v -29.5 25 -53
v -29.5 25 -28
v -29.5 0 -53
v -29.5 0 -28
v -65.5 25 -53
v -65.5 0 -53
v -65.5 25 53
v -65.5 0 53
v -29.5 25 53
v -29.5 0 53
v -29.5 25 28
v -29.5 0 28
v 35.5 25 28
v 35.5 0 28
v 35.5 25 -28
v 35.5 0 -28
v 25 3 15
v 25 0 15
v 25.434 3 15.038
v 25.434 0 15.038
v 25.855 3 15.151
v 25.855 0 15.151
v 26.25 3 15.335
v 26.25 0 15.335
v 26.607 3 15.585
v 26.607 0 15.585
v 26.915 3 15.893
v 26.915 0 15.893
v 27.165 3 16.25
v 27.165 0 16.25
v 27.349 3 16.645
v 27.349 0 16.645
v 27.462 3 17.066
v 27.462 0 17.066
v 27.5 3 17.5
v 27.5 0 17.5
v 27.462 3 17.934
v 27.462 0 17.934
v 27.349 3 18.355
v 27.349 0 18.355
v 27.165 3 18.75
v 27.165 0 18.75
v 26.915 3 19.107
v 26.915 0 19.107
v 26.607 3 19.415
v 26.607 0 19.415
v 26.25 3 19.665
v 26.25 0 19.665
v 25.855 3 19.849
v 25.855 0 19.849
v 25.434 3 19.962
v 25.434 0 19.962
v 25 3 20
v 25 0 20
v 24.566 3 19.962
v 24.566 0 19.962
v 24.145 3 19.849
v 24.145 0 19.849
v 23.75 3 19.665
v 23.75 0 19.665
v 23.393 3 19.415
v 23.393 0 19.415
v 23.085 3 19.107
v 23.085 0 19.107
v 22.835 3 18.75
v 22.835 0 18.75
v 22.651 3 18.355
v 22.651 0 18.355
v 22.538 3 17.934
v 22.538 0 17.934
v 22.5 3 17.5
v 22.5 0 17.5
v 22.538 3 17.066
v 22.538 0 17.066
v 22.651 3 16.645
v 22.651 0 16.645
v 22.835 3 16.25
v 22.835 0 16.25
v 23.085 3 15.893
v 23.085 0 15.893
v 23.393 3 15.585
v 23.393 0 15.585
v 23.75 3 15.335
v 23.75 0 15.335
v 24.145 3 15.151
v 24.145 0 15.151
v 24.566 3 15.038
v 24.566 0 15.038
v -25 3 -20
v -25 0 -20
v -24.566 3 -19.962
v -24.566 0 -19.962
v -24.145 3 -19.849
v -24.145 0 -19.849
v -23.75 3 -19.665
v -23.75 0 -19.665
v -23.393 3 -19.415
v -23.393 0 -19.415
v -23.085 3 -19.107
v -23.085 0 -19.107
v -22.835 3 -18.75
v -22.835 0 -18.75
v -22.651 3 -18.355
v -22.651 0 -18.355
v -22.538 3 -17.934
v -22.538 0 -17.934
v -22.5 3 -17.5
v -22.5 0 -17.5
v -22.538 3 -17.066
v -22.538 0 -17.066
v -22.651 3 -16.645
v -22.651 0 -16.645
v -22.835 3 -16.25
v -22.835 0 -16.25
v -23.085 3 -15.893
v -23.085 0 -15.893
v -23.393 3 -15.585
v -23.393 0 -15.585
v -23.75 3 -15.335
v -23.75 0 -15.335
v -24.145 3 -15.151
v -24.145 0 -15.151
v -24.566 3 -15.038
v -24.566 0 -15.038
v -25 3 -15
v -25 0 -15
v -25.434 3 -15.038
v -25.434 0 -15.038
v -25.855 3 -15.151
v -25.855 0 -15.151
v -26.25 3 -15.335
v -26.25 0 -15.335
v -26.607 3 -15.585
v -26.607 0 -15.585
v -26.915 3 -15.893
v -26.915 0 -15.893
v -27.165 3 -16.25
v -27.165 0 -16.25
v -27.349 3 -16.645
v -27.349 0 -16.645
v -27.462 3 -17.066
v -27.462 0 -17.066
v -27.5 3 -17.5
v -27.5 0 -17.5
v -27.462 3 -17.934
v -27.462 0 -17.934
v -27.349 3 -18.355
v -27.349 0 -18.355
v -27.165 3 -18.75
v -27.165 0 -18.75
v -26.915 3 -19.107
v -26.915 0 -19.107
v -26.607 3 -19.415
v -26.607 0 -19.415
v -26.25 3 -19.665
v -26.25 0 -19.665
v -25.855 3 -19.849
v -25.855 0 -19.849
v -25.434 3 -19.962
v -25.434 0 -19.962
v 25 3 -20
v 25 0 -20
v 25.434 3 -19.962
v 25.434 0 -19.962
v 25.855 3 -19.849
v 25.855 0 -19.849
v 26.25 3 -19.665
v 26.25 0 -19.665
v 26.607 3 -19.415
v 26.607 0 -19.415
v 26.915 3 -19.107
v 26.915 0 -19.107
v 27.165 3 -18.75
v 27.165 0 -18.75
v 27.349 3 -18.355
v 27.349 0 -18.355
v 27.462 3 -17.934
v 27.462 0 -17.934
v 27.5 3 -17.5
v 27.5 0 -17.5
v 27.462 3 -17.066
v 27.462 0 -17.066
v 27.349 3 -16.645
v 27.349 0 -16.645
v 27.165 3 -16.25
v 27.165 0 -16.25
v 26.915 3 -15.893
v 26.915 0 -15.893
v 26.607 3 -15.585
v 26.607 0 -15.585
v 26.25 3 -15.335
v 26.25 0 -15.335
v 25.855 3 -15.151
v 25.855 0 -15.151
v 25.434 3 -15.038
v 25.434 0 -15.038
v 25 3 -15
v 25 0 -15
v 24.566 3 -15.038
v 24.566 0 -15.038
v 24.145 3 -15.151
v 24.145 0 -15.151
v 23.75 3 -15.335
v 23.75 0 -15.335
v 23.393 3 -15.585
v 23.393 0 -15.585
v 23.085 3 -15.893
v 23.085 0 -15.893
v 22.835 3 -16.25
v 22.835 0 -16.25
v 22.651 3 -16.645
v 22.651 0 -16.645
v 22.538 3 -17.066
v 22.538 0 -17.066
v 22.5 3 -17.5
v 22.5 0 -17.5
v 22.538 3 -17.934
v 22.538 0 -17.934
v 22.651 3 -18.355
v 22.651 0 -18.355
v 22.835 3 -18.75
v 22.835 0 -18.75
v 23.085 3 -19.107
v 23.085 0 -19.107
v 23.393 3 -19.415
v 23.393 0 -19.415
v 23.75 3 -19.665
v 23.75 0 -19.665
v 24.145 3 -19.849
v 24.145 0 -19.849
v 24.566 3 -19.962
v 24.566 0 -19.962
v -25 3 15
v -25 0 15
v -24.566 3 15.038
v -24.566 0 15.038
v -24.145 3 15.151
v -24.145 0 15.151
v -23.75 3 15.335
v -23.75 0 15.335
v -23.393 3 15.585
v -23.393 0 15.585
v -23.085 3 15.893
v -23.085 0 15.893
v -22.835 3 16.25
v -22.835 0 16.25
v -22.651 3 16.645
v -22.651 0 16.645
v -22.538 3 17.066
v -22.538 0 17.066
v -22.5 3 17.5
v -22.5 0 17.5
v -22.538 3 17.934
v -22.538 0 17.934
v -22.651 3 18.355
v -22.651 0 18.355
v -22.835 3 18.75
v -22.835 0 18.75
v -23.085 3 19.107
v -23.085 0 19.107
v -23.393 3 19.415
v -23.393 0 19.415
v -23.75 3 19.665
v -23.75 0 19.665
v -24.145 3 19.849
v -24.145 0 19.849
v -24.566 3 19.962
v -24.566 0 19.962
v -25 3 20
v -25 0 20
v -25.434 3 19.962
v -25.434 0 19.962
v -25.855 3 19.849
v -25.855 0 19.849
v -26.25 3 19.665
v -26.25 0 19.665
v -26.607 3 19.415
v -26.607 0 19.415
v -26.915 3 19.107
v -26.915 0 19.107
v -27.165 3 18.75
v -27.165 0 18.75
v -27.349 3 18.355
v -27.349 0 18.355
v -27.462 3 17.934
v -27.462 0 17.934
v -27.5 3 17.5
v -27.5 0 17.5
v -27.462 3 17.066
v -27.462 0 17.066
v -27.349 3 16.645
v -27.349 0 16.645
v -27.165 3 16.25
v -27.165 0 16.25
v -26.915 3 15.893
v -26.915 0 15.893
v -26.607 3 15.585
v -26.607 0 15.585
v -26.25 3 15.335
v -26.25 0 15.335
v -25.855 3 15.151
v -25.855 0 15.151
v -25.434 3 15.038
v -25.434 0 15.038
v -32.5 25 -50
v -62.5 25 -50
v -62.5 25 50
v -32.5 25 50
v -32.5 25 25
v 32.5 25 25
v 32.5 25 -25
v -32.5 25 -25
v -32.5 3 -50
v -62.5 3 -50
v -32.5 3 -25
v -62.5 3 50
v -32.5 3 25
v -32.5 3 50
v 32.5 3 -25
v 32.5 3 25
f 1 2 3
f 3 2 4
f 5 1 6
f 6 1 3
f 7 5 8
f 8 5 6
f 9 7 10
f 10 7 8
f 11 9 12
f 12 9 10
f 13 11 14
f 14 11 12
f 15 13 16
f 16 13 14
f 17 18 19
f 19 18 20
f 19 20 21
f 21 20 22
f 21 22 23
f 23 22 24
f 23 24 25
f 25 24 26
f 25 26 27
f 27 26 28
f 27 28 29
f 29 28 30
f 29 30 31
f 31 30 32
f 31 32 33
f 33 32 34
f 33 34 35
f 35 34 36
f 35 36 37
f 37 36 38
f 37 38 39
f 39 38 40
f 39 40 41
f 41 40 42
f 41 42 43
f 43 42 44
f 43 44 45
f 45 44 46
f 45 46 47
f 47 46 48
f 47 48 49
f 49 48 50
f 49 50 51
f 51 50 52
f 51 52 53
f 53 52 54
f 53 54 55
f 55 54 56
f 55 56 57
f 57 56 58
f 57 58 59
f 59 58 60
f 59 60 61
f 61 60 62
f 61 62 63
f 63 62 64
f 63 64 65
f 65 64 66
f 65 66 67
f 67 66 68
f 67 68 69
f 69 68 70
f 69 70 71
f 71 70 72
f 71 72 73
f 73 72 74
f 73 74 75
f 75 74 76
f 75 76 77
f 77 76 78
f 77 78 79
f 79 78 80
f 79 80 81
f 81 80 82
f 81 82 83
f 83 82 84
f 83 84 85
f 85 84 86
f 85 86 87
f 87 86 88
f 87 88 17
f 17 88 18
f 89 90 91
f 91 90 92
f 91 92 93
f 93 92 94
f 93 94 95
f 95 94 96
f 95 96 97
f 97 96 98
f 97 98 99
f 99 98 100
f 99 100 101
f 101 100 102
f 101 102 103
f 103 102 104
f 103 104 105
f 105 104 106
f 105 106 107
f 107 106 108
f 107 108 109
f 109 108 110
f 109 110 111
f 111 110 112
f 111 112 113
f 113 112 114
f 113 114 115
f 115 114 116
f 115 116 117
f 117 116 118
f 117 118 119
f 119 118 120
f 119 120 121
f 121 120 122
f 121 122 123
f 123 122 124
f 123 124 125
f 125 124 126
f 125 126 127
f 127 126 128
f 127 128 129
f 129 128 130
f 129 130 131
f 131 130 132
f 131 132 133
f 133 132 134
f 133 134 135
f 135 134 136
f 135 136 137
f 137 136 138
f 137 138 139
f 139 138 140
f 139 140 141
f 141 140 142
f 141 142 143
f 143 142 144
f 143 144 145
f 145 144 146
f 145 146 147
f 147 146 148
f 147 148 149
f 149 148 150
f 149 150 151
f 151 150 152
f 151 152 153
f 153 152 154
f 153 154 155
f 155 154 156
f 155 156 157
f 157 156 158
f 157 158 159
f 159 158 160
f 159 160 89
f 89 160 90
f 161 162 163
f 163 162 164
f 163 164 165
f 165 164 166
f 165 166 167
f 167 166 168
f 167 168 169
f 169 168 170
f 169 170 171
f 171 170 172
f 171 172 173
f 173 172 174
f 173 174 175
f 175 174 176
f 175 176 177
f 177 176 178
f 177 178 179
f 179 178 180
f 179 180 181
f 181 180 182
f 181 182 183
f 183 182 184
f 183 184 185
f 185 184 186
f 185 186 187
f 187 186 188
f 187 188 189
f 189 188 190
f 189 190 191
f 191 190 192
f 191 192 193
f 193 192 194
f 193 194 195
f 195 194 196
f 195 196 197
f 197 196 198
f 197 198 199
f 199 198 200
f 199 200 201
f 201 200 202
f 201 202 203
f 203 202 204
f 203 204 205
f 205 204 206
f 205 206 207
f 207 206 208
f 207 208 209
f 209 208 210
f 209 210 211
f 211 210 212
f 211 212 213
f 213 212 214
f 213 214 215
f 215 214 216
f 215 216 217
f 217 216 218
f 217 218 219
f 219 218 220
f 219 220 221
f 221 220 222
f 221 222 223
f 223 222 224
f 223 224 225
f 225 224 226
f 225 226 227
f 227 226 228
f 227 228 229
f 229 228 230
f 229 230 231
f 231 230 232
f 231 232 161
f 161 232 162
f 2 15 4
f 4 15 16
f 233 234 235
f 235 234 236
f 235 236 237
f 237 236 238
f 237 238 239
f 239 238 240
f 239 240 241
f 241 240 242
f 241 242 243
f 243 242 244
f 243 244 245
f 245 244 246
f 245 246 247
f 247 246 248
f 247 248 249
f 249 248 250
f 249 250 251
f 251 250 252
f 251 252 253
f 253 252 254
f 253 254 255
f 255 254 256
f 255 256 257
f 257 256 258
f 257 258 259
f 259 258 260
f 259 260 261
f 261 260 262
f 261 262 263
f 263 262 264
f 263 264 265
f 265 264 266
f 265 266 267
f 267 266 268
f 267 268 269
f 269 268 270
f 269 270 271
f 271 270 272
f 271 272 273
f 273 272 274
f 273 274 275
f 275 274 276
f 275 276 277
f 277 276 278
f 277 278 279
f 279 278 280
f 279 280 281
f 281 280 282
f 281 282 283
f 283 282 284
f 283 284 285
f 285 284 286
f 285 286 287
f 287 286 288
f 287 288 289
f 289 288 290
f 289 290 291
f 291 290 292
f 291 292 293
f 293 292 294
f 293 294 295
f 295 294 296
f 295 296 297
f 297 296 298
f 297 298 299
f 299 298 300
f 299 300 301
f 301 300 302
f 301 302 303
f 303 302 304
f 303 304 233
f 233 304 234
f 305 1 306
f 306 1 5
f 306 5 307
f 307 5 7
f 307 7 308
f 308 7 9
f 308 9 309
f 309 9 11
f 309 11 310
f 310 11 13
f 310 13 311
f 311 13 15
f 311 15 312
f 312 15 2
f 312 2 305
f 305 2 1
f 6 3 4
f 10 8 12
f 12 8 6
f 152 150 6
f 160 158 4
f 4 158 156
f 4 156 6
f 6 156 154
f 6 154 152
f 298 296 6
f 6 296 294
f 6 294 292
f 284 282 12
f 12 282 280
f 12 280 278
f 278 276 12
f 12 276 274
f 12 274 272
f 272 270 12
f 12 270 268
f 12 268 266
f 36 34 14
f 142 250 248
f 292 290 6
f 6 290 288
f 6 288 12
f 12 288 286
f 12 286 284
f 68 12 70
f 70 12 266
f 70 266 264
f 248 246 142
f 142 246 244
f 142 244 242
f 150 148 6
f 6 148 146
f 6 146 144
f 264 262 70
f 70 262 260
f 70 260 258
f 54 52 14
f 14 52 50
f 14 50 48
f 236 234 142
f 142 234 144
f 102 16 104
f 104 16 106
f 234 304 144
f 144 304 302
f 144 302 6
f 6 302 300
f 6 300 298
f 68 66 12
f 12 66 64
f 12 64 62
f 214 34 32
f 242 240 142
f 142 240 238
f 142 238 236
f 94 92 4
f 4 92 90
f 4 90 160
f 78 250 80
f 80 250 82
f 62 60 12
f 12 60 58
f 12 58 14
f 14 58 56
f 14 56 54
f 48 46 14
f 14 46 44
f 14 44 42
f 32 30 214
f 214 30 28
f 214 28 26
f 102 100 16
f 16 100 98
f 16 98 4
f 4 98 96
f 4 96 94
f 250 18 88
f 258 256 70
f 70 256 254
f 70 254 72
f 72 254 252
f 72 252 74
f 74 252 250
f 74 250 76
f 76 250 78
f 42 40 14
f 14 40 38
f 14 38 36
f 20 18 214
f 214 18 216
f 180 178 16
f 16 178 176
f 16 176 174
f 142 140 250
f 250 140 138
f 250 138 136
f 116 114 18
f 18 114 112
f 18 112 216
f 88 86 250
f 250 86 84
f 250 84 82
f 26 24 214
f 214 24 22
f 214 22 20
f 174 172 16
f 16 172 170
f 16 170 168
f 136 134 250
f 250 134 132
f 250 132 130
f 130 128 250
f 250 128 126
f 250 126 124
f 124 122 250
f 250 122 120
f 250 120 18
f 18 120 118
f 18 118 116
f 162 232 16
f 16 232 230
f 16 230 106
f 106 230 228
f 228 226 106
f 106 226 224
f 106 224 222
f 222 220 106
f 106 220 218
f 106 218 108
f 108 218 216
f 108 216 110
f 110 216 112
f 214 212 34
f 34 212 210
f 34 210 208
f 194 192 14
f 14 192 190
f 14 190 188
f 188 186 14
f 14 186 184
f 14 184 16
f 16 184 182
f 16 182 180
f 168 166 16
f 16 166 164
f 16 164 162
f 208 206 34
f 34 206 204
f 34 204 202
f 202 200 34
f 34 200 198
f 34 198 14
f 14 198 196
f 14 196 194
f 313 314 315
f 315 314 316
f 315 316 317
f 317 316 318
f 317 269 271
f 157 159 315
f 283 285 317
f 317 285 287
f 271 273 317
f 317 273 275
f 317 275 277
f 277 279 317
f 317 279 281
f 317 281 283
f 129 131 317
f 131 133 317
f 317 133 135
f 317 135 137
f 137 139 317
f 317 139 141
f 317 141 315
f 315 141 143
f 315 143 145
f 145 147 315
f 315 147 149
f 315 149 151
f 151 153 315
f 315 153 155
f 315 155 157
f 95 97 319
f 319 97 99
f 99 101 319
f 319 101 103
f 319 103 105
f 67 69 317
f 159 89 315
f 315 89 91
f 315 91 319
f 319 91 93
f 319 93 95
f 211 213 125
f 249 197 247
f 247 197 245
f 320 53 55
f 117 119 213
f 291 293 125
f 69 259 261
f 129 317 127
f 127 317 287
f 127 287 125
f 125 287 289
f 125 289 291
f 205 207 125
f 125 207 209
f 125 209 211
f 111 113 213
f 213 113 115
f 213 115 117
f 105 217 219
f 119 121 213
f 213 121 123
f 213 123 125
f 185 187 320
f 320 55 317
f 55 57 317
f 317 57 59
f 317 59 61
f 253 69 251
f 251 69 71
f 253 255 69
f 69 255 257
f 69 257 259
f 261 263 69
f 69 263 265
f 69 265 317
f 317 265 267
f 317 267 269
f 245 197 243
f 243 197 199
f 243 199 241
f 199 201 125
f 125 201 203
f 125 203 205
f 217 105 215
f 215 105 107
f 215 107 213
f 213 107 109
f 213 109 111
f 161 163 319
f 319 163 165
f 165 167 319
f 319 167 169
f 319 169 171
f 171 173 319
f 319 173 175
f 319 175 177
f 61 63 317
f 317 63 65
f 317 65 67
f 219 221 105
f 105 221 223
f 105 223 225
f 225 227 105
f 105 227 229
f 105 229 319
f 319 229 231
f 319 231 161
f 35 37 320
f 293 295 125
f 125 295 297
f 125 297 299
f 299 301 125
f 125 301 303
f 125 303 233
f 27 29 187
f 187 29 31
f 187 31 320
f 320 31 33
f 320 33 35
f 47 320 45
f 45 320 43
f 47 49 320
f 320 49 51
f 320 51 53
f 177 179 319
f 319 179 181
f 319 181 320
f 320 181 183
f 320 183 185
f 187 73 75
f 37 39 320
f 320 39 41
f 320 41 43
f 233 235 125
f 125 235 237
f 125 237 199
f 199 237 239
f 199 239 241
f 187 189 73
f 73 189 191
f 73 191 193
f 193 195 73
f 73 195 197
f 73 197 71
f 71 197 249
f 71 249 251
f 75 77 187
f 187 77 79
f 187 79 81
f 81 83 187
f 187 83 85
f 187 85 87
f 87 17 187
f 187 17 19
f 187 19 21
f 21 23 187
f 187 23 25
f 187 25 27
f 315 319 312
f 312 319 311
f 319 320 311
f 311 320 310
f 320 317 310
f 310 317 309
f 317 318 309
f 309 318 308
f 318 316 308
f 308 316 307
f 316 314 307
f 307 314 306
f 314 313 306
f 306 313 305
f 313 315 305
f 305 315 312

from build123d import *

# Parameters (mm, degrees)
SKETCH1_R           = 2.5
BOSS_EXTRUDE1_DEPTH = 25
CUT_EXTRUDE2_DEPTH  = 22


with BuildPart() as part:
    # Sketch1 → Boss-Extrude1 (new body)
    with BuildSketch(Plane(origin=(0, 0, 0), x_dir=(1, 0, 0), z_dir=(0, 1, 0))):
        Polygon((-29.5, 28), (35.5, 28), (35.5, -28), (-29.5, -28), (-29.5, -53), (-65.5, -53), (-65.5, 53), (-29.5, 53), align=None)
        with Locations((-25, 17.5)):
            Circle(SKETCH1_R, mode=Mode.SUBTRACT)
        with Locations((25, 17.5)):
            Circle(SKETCH1_R, mode=Mode.SUBTRACT)
        with Locations((25, -17.5)):
            Circle(SKETCH1_R, mode=Mode.SUBTRACT)
        with Locations((-25, -17.5)):
            Circle(SKETCH1_R, mode=Mode.SUBTRACT)
    extrude(amount=BOSS_EXTRUDE1_DEPTH)

    # Sketch6 → Cut-Extrude2 (cut)
    with BuildSketch(Plane(origin=(0, 25, 0), x_dir=(1, 0, 0), z_dir=(0, 1, 0))):
        Polygon((-32.5, 25), (-32.5, 50), (-62.5, 50), (-62.5, -50), (-32.5, -50), (-32.5, -25), (32.5, -25), (32.5, 25), align=None)
    extrude(amount=-CUT_EXTRUDE2_DEPTH, mode=Mode.SUBTRACT)


solid = part.part
